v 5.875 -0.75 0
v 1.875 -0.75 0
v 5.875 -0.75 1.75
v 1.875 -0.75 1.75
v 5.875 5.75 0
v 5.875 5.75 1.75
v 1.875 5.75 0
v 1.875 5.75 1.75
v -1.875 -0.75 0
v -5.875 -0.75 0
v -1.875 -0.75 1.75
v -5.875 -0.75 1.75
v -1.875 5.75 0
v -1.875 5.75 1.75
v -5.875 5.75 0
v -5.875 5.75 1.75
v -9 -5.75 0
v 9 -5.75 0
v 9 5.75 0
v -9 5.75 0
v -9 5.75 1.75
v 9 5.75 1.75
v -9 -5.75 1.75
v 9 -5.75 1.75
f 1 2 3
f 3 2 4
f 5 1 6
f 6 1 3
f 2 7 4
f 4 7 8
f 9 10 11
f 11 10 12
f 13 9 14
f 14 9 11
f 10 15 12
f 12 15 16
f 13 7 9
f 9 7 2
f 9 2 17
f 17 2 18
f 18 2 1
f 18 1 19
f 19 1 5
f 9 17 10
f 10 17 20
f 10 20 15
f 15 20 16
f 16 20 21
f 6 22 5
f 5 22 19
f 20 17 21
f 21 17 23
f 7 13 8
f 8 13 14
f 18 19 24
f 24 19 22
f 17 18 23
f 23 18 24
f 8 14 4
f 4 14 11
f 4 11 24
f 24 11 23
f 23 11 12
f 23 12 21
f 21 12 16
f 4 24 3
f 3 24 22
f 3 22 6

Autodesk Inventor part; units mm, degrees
ref_plane "YZ Plane" through (0, 0, 0) normal (1, 0, 0) x (0, 1, 0)
ref_plane "XZ Plane" through (0, 0, 0) normal (0, 1, 0) x (-1, 0, 0)
ref_plane "XY Plane" through (0, 0, 0) normal (0, 0, 1) x (1, 0, 0)
sketch "Sketch16" plane through (0, 0, 0) normal (0, 0, 1) x (1, 0, 0)
  line L0 (-9, 5.75) -> (9, 5.75)
  line L1 (9, 5.75) -> (9, -5.75)
  line L2 (9, -5.75) -> (-9, -5.75)
  line L3 (-9, -5.75) -> (-9, 5.75)
  line L4 (-9, 5.75) -> (9, -5.75) construction
  line L5 (9, 5.75) -> (-9, -5.75) construction
  point P0 (0, 0)
  dimension "d82" = 18
  dimension "d90" = 11.5
extrude "Extrusion16" add sketch "Sketch16" along normal blind 1.75
sketch "Sketch17" plane through (0, 0, 1.75) normal (0, 0, 1) x (1, 0, 0)
  line L0 (-9, -5.75) -> (9, -5.75) construction
  line L1 (9, -5.75) -> (9, 5.75) construction
  line L2 (9, 5.75) -> (-9, 5.75) construction
  line L3 (-9, 5.75) -> (-9, -5.75) construction
  line L4 (-5.875, 5.75) -> (-1.875, 5.75)
  line L5 (-1.875, 5.75) -> (-1.875, -0.75)
  line L6 (-1.875, -0.75) -> (-5.875, -0.75)
  line L7 (-5.875, -0.75) -> (-5.875, 5.75)
  line L8 (1.875, 5.75) -> (5.875, 5.75)
  line L9 (5.875, 5.75) -> (5.875, -0.75)
  line L10 (5.875, -0.75) -> (1.875, -0.75)
  line L11 (1.875, -0.75) -> (1.875, 5.75)
  line L12 (5.875, -0.75) -> (9, -0.75) construction
  line L13 (1.875, -0.75) -> (-1.875, -0.75) construction
  line L14 (-5.875, -0.75) -> (-9, -0.75) construction
  point P0 (0, 0)
  point P1 (0, -0.75)
  dimension "d85" = 3.75
  dimension "d86" = 4
  dimension "d87" = 6.5
extrude "Extrusion17" cut sketch "Sketch17" against normal through all
properties part number "base"
